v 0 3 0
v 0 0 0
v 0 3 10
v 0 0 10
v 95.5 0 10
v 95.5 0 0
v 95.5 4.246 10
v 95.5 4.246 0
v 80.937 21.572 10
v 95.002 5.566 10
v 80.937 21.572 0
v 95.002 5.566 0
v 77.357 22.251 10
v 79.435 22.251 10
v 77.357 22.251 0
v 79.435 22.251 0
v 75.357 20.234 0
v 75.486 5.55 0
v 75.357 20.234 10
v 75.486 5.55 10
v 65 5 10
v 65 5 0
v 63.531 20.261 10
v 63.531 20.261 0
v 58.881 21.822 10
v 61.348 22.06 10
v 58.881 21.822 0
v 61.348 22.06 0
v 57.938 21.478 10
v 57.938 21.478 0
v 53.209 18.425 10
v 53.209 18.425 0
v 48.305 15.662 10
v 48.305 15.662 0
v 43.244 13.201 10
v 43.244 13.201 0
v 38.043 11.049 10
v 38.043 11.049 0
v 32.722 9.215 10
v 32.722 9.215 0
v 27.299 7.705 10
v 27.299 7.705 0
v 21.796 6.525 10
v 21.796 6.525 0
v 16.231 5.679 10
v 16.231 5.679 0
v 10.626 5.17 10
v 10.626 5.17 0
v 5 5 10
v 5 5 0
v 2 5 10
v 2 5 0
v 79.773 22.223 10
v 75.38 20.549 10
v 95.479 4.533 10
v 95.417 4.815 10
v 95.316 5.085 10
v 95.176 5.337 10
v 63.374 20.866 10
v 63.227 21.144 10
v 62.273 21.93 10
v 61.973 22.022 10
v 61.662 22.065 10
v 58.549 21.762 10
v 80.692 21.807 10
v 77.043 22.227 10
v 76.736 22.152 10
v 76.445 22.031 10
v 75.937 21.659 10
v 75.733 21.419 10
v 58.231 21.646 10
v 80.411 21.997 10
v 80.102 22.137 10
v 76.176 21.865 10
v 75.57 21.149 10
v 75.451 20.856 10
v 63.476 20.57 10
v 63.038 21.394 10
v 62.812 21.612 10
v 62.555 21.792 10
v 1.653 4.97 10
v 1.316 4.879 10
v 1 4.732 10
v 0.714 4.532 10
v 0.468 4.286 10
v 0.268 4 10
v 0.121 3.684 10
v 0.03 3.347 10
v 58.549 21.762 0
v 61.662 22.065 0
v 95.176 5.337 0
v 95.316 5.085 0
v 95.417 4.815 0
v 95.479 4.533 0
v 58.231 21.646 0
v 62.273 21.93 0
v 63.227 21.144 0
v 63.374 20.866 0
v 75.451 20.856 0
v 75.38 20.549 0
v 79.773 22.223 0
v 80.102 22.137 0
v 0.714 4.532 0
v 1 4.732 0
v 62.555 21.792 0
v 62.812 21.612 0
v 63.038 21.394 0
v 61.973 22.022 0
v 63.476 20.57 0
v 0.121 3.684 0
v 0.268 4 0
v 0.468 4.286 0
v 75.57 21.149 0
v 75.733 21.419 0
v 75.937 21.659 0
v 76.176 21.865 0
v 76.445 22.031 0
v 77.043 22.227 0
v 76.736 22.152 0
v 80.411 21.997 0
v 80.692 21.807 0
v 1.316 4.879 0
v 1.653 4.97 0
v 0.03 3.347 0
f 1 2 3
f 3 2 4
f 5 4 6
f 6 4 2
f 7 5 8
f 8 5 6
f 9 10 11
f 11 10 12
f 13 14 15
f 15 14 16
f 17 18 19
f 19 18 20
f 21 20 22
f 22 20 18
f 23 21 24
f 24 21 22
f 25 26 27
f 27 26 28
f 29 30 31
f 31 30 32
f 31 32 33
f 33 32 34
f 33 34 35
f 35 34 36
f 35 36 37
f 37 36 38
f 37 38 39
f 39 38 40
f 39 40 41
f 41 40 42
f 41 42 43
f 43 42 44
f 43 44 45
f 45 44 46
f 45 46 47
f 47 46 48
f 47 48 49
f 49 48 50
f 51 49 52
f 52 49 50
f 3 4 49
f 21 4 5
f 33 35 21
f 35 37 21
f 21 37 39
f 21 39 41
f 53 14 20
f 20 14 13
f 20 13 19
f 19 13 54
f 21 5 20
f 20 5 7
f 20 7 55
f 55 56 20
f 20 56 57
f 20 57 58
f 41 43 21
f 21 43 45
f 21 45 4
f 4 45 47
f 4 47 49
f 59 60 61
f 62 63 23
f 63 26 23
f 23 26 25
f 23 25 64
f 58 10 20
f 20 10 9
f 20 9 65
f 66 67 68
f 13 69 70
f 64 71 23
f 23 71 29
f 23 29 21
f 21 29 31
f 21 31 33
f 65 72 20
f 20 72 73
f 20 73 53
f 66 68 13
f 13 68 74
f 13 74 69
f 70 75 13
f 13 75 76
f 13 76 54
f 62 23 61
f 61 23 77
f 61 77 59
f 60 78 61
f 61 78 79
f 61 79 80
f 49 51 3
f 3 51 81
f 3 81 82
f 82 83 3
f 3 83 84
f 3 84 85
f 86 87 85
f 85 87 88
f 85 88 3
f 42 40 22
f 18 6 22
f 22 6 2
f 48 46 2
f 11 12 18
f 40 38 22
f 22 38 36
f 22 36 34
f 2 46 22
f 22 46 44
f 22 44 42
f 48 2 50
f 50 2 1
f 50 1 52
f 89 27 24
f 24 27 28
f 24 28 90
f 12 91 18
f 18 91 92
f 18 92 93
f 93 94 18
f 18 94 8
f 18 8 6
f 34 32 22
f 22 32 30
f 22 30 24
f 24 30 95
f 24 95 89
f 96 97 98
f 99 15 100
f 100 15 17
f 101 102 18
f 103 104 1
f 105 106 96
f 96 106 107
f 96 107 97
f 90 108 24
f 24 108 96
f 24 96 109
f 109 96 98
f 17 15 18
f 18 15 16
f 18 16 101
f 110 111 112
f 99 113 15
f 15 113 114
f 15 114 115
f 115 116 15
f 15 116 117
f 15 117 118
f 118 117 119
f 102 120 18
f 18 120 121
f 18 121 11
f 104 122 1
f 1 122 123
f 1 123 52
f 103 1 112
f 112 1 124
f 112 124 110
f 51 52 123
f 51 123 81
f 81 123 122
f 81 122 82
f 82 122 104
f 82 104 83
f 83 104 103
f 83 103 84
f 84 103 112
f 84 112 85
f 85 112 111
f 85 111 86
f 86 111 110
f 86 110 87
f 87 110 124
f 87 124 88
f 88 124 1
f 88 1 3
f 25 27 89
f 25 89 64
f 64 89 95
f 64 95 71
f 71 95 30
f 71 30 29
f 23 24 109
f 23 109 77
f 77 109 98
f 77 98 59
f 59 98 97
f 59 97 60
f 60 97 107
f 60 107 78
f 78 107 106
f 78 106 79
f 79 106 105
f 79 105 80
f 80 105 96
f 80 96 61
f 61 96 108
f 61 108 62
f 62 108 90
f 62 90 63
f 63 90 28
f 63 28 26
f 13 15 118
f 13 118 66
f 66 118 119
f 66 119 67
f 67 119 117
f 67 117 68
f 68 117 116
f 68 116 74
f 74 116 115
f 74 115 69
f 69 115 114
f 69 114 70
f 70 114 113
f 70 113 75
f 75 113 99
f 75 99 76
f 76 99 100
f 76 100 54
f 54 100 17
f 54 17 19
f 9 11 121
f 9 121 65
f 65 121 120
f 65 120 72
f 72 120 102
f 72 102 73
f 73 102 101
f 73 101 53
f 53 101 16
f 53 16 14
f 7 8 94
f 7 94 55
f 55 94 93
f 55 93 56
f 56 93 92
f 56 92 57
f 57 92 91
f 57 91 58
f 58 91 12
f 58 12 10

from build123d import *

# Parameters (mm, degrees)
BOSS_EXTRU_1_DEPTH = 10
CONG_1_R           = 2


with BuildPart() as part:
    # Esquisse1 → Boss.-Extru.1 (new body)
    with BuildSketch(Plane.XY):
        with BuildLine():
            Line((0, 0), (95.5, 0))
            Line((95.5, 0), (95.5, 5))
            Line((95.5, 5), (80.339854507, 22.251465861))
            Line((80.339854507, 22.251465861), (75.339854507, 22.251465861))
            Line((75.339854507, 22.251465861), (75.485610115, 5.549527541))
            Line((75.485610115, 5.549527541), (65, 5))
            Line((65, 5), (63.338872772, 22.251465861))
            Line((63.338872772, 22.251465861), (58.36189178, 21.772237099))
            ThreePointArc((58.36189178, 21.772237099), (32.967836132, 9.291799024), (5, 5))
            Line((5, 5), (0, 5))
            Line((0, 5), (0, 0))
        make_face()
    extrude(amount=BOSS_EXTRU_1_DEPTH)

    # Congé1
    cong_1_edges = [part.edges().sort_by_distance(p)[0] for p in [
        (0, 5, 5),
        (58.36189178, 21.772237099, 5),
        (63.338872772, 22.251465861, 5),
        (75.339854507, 22.251465861, 5),
        (80.339854507, 22.251465861, 5),
        (95.5, 5, 5),
    ]]
    fillet(cong_1_edges, radius=CONG_1_R)


solid = part.part
